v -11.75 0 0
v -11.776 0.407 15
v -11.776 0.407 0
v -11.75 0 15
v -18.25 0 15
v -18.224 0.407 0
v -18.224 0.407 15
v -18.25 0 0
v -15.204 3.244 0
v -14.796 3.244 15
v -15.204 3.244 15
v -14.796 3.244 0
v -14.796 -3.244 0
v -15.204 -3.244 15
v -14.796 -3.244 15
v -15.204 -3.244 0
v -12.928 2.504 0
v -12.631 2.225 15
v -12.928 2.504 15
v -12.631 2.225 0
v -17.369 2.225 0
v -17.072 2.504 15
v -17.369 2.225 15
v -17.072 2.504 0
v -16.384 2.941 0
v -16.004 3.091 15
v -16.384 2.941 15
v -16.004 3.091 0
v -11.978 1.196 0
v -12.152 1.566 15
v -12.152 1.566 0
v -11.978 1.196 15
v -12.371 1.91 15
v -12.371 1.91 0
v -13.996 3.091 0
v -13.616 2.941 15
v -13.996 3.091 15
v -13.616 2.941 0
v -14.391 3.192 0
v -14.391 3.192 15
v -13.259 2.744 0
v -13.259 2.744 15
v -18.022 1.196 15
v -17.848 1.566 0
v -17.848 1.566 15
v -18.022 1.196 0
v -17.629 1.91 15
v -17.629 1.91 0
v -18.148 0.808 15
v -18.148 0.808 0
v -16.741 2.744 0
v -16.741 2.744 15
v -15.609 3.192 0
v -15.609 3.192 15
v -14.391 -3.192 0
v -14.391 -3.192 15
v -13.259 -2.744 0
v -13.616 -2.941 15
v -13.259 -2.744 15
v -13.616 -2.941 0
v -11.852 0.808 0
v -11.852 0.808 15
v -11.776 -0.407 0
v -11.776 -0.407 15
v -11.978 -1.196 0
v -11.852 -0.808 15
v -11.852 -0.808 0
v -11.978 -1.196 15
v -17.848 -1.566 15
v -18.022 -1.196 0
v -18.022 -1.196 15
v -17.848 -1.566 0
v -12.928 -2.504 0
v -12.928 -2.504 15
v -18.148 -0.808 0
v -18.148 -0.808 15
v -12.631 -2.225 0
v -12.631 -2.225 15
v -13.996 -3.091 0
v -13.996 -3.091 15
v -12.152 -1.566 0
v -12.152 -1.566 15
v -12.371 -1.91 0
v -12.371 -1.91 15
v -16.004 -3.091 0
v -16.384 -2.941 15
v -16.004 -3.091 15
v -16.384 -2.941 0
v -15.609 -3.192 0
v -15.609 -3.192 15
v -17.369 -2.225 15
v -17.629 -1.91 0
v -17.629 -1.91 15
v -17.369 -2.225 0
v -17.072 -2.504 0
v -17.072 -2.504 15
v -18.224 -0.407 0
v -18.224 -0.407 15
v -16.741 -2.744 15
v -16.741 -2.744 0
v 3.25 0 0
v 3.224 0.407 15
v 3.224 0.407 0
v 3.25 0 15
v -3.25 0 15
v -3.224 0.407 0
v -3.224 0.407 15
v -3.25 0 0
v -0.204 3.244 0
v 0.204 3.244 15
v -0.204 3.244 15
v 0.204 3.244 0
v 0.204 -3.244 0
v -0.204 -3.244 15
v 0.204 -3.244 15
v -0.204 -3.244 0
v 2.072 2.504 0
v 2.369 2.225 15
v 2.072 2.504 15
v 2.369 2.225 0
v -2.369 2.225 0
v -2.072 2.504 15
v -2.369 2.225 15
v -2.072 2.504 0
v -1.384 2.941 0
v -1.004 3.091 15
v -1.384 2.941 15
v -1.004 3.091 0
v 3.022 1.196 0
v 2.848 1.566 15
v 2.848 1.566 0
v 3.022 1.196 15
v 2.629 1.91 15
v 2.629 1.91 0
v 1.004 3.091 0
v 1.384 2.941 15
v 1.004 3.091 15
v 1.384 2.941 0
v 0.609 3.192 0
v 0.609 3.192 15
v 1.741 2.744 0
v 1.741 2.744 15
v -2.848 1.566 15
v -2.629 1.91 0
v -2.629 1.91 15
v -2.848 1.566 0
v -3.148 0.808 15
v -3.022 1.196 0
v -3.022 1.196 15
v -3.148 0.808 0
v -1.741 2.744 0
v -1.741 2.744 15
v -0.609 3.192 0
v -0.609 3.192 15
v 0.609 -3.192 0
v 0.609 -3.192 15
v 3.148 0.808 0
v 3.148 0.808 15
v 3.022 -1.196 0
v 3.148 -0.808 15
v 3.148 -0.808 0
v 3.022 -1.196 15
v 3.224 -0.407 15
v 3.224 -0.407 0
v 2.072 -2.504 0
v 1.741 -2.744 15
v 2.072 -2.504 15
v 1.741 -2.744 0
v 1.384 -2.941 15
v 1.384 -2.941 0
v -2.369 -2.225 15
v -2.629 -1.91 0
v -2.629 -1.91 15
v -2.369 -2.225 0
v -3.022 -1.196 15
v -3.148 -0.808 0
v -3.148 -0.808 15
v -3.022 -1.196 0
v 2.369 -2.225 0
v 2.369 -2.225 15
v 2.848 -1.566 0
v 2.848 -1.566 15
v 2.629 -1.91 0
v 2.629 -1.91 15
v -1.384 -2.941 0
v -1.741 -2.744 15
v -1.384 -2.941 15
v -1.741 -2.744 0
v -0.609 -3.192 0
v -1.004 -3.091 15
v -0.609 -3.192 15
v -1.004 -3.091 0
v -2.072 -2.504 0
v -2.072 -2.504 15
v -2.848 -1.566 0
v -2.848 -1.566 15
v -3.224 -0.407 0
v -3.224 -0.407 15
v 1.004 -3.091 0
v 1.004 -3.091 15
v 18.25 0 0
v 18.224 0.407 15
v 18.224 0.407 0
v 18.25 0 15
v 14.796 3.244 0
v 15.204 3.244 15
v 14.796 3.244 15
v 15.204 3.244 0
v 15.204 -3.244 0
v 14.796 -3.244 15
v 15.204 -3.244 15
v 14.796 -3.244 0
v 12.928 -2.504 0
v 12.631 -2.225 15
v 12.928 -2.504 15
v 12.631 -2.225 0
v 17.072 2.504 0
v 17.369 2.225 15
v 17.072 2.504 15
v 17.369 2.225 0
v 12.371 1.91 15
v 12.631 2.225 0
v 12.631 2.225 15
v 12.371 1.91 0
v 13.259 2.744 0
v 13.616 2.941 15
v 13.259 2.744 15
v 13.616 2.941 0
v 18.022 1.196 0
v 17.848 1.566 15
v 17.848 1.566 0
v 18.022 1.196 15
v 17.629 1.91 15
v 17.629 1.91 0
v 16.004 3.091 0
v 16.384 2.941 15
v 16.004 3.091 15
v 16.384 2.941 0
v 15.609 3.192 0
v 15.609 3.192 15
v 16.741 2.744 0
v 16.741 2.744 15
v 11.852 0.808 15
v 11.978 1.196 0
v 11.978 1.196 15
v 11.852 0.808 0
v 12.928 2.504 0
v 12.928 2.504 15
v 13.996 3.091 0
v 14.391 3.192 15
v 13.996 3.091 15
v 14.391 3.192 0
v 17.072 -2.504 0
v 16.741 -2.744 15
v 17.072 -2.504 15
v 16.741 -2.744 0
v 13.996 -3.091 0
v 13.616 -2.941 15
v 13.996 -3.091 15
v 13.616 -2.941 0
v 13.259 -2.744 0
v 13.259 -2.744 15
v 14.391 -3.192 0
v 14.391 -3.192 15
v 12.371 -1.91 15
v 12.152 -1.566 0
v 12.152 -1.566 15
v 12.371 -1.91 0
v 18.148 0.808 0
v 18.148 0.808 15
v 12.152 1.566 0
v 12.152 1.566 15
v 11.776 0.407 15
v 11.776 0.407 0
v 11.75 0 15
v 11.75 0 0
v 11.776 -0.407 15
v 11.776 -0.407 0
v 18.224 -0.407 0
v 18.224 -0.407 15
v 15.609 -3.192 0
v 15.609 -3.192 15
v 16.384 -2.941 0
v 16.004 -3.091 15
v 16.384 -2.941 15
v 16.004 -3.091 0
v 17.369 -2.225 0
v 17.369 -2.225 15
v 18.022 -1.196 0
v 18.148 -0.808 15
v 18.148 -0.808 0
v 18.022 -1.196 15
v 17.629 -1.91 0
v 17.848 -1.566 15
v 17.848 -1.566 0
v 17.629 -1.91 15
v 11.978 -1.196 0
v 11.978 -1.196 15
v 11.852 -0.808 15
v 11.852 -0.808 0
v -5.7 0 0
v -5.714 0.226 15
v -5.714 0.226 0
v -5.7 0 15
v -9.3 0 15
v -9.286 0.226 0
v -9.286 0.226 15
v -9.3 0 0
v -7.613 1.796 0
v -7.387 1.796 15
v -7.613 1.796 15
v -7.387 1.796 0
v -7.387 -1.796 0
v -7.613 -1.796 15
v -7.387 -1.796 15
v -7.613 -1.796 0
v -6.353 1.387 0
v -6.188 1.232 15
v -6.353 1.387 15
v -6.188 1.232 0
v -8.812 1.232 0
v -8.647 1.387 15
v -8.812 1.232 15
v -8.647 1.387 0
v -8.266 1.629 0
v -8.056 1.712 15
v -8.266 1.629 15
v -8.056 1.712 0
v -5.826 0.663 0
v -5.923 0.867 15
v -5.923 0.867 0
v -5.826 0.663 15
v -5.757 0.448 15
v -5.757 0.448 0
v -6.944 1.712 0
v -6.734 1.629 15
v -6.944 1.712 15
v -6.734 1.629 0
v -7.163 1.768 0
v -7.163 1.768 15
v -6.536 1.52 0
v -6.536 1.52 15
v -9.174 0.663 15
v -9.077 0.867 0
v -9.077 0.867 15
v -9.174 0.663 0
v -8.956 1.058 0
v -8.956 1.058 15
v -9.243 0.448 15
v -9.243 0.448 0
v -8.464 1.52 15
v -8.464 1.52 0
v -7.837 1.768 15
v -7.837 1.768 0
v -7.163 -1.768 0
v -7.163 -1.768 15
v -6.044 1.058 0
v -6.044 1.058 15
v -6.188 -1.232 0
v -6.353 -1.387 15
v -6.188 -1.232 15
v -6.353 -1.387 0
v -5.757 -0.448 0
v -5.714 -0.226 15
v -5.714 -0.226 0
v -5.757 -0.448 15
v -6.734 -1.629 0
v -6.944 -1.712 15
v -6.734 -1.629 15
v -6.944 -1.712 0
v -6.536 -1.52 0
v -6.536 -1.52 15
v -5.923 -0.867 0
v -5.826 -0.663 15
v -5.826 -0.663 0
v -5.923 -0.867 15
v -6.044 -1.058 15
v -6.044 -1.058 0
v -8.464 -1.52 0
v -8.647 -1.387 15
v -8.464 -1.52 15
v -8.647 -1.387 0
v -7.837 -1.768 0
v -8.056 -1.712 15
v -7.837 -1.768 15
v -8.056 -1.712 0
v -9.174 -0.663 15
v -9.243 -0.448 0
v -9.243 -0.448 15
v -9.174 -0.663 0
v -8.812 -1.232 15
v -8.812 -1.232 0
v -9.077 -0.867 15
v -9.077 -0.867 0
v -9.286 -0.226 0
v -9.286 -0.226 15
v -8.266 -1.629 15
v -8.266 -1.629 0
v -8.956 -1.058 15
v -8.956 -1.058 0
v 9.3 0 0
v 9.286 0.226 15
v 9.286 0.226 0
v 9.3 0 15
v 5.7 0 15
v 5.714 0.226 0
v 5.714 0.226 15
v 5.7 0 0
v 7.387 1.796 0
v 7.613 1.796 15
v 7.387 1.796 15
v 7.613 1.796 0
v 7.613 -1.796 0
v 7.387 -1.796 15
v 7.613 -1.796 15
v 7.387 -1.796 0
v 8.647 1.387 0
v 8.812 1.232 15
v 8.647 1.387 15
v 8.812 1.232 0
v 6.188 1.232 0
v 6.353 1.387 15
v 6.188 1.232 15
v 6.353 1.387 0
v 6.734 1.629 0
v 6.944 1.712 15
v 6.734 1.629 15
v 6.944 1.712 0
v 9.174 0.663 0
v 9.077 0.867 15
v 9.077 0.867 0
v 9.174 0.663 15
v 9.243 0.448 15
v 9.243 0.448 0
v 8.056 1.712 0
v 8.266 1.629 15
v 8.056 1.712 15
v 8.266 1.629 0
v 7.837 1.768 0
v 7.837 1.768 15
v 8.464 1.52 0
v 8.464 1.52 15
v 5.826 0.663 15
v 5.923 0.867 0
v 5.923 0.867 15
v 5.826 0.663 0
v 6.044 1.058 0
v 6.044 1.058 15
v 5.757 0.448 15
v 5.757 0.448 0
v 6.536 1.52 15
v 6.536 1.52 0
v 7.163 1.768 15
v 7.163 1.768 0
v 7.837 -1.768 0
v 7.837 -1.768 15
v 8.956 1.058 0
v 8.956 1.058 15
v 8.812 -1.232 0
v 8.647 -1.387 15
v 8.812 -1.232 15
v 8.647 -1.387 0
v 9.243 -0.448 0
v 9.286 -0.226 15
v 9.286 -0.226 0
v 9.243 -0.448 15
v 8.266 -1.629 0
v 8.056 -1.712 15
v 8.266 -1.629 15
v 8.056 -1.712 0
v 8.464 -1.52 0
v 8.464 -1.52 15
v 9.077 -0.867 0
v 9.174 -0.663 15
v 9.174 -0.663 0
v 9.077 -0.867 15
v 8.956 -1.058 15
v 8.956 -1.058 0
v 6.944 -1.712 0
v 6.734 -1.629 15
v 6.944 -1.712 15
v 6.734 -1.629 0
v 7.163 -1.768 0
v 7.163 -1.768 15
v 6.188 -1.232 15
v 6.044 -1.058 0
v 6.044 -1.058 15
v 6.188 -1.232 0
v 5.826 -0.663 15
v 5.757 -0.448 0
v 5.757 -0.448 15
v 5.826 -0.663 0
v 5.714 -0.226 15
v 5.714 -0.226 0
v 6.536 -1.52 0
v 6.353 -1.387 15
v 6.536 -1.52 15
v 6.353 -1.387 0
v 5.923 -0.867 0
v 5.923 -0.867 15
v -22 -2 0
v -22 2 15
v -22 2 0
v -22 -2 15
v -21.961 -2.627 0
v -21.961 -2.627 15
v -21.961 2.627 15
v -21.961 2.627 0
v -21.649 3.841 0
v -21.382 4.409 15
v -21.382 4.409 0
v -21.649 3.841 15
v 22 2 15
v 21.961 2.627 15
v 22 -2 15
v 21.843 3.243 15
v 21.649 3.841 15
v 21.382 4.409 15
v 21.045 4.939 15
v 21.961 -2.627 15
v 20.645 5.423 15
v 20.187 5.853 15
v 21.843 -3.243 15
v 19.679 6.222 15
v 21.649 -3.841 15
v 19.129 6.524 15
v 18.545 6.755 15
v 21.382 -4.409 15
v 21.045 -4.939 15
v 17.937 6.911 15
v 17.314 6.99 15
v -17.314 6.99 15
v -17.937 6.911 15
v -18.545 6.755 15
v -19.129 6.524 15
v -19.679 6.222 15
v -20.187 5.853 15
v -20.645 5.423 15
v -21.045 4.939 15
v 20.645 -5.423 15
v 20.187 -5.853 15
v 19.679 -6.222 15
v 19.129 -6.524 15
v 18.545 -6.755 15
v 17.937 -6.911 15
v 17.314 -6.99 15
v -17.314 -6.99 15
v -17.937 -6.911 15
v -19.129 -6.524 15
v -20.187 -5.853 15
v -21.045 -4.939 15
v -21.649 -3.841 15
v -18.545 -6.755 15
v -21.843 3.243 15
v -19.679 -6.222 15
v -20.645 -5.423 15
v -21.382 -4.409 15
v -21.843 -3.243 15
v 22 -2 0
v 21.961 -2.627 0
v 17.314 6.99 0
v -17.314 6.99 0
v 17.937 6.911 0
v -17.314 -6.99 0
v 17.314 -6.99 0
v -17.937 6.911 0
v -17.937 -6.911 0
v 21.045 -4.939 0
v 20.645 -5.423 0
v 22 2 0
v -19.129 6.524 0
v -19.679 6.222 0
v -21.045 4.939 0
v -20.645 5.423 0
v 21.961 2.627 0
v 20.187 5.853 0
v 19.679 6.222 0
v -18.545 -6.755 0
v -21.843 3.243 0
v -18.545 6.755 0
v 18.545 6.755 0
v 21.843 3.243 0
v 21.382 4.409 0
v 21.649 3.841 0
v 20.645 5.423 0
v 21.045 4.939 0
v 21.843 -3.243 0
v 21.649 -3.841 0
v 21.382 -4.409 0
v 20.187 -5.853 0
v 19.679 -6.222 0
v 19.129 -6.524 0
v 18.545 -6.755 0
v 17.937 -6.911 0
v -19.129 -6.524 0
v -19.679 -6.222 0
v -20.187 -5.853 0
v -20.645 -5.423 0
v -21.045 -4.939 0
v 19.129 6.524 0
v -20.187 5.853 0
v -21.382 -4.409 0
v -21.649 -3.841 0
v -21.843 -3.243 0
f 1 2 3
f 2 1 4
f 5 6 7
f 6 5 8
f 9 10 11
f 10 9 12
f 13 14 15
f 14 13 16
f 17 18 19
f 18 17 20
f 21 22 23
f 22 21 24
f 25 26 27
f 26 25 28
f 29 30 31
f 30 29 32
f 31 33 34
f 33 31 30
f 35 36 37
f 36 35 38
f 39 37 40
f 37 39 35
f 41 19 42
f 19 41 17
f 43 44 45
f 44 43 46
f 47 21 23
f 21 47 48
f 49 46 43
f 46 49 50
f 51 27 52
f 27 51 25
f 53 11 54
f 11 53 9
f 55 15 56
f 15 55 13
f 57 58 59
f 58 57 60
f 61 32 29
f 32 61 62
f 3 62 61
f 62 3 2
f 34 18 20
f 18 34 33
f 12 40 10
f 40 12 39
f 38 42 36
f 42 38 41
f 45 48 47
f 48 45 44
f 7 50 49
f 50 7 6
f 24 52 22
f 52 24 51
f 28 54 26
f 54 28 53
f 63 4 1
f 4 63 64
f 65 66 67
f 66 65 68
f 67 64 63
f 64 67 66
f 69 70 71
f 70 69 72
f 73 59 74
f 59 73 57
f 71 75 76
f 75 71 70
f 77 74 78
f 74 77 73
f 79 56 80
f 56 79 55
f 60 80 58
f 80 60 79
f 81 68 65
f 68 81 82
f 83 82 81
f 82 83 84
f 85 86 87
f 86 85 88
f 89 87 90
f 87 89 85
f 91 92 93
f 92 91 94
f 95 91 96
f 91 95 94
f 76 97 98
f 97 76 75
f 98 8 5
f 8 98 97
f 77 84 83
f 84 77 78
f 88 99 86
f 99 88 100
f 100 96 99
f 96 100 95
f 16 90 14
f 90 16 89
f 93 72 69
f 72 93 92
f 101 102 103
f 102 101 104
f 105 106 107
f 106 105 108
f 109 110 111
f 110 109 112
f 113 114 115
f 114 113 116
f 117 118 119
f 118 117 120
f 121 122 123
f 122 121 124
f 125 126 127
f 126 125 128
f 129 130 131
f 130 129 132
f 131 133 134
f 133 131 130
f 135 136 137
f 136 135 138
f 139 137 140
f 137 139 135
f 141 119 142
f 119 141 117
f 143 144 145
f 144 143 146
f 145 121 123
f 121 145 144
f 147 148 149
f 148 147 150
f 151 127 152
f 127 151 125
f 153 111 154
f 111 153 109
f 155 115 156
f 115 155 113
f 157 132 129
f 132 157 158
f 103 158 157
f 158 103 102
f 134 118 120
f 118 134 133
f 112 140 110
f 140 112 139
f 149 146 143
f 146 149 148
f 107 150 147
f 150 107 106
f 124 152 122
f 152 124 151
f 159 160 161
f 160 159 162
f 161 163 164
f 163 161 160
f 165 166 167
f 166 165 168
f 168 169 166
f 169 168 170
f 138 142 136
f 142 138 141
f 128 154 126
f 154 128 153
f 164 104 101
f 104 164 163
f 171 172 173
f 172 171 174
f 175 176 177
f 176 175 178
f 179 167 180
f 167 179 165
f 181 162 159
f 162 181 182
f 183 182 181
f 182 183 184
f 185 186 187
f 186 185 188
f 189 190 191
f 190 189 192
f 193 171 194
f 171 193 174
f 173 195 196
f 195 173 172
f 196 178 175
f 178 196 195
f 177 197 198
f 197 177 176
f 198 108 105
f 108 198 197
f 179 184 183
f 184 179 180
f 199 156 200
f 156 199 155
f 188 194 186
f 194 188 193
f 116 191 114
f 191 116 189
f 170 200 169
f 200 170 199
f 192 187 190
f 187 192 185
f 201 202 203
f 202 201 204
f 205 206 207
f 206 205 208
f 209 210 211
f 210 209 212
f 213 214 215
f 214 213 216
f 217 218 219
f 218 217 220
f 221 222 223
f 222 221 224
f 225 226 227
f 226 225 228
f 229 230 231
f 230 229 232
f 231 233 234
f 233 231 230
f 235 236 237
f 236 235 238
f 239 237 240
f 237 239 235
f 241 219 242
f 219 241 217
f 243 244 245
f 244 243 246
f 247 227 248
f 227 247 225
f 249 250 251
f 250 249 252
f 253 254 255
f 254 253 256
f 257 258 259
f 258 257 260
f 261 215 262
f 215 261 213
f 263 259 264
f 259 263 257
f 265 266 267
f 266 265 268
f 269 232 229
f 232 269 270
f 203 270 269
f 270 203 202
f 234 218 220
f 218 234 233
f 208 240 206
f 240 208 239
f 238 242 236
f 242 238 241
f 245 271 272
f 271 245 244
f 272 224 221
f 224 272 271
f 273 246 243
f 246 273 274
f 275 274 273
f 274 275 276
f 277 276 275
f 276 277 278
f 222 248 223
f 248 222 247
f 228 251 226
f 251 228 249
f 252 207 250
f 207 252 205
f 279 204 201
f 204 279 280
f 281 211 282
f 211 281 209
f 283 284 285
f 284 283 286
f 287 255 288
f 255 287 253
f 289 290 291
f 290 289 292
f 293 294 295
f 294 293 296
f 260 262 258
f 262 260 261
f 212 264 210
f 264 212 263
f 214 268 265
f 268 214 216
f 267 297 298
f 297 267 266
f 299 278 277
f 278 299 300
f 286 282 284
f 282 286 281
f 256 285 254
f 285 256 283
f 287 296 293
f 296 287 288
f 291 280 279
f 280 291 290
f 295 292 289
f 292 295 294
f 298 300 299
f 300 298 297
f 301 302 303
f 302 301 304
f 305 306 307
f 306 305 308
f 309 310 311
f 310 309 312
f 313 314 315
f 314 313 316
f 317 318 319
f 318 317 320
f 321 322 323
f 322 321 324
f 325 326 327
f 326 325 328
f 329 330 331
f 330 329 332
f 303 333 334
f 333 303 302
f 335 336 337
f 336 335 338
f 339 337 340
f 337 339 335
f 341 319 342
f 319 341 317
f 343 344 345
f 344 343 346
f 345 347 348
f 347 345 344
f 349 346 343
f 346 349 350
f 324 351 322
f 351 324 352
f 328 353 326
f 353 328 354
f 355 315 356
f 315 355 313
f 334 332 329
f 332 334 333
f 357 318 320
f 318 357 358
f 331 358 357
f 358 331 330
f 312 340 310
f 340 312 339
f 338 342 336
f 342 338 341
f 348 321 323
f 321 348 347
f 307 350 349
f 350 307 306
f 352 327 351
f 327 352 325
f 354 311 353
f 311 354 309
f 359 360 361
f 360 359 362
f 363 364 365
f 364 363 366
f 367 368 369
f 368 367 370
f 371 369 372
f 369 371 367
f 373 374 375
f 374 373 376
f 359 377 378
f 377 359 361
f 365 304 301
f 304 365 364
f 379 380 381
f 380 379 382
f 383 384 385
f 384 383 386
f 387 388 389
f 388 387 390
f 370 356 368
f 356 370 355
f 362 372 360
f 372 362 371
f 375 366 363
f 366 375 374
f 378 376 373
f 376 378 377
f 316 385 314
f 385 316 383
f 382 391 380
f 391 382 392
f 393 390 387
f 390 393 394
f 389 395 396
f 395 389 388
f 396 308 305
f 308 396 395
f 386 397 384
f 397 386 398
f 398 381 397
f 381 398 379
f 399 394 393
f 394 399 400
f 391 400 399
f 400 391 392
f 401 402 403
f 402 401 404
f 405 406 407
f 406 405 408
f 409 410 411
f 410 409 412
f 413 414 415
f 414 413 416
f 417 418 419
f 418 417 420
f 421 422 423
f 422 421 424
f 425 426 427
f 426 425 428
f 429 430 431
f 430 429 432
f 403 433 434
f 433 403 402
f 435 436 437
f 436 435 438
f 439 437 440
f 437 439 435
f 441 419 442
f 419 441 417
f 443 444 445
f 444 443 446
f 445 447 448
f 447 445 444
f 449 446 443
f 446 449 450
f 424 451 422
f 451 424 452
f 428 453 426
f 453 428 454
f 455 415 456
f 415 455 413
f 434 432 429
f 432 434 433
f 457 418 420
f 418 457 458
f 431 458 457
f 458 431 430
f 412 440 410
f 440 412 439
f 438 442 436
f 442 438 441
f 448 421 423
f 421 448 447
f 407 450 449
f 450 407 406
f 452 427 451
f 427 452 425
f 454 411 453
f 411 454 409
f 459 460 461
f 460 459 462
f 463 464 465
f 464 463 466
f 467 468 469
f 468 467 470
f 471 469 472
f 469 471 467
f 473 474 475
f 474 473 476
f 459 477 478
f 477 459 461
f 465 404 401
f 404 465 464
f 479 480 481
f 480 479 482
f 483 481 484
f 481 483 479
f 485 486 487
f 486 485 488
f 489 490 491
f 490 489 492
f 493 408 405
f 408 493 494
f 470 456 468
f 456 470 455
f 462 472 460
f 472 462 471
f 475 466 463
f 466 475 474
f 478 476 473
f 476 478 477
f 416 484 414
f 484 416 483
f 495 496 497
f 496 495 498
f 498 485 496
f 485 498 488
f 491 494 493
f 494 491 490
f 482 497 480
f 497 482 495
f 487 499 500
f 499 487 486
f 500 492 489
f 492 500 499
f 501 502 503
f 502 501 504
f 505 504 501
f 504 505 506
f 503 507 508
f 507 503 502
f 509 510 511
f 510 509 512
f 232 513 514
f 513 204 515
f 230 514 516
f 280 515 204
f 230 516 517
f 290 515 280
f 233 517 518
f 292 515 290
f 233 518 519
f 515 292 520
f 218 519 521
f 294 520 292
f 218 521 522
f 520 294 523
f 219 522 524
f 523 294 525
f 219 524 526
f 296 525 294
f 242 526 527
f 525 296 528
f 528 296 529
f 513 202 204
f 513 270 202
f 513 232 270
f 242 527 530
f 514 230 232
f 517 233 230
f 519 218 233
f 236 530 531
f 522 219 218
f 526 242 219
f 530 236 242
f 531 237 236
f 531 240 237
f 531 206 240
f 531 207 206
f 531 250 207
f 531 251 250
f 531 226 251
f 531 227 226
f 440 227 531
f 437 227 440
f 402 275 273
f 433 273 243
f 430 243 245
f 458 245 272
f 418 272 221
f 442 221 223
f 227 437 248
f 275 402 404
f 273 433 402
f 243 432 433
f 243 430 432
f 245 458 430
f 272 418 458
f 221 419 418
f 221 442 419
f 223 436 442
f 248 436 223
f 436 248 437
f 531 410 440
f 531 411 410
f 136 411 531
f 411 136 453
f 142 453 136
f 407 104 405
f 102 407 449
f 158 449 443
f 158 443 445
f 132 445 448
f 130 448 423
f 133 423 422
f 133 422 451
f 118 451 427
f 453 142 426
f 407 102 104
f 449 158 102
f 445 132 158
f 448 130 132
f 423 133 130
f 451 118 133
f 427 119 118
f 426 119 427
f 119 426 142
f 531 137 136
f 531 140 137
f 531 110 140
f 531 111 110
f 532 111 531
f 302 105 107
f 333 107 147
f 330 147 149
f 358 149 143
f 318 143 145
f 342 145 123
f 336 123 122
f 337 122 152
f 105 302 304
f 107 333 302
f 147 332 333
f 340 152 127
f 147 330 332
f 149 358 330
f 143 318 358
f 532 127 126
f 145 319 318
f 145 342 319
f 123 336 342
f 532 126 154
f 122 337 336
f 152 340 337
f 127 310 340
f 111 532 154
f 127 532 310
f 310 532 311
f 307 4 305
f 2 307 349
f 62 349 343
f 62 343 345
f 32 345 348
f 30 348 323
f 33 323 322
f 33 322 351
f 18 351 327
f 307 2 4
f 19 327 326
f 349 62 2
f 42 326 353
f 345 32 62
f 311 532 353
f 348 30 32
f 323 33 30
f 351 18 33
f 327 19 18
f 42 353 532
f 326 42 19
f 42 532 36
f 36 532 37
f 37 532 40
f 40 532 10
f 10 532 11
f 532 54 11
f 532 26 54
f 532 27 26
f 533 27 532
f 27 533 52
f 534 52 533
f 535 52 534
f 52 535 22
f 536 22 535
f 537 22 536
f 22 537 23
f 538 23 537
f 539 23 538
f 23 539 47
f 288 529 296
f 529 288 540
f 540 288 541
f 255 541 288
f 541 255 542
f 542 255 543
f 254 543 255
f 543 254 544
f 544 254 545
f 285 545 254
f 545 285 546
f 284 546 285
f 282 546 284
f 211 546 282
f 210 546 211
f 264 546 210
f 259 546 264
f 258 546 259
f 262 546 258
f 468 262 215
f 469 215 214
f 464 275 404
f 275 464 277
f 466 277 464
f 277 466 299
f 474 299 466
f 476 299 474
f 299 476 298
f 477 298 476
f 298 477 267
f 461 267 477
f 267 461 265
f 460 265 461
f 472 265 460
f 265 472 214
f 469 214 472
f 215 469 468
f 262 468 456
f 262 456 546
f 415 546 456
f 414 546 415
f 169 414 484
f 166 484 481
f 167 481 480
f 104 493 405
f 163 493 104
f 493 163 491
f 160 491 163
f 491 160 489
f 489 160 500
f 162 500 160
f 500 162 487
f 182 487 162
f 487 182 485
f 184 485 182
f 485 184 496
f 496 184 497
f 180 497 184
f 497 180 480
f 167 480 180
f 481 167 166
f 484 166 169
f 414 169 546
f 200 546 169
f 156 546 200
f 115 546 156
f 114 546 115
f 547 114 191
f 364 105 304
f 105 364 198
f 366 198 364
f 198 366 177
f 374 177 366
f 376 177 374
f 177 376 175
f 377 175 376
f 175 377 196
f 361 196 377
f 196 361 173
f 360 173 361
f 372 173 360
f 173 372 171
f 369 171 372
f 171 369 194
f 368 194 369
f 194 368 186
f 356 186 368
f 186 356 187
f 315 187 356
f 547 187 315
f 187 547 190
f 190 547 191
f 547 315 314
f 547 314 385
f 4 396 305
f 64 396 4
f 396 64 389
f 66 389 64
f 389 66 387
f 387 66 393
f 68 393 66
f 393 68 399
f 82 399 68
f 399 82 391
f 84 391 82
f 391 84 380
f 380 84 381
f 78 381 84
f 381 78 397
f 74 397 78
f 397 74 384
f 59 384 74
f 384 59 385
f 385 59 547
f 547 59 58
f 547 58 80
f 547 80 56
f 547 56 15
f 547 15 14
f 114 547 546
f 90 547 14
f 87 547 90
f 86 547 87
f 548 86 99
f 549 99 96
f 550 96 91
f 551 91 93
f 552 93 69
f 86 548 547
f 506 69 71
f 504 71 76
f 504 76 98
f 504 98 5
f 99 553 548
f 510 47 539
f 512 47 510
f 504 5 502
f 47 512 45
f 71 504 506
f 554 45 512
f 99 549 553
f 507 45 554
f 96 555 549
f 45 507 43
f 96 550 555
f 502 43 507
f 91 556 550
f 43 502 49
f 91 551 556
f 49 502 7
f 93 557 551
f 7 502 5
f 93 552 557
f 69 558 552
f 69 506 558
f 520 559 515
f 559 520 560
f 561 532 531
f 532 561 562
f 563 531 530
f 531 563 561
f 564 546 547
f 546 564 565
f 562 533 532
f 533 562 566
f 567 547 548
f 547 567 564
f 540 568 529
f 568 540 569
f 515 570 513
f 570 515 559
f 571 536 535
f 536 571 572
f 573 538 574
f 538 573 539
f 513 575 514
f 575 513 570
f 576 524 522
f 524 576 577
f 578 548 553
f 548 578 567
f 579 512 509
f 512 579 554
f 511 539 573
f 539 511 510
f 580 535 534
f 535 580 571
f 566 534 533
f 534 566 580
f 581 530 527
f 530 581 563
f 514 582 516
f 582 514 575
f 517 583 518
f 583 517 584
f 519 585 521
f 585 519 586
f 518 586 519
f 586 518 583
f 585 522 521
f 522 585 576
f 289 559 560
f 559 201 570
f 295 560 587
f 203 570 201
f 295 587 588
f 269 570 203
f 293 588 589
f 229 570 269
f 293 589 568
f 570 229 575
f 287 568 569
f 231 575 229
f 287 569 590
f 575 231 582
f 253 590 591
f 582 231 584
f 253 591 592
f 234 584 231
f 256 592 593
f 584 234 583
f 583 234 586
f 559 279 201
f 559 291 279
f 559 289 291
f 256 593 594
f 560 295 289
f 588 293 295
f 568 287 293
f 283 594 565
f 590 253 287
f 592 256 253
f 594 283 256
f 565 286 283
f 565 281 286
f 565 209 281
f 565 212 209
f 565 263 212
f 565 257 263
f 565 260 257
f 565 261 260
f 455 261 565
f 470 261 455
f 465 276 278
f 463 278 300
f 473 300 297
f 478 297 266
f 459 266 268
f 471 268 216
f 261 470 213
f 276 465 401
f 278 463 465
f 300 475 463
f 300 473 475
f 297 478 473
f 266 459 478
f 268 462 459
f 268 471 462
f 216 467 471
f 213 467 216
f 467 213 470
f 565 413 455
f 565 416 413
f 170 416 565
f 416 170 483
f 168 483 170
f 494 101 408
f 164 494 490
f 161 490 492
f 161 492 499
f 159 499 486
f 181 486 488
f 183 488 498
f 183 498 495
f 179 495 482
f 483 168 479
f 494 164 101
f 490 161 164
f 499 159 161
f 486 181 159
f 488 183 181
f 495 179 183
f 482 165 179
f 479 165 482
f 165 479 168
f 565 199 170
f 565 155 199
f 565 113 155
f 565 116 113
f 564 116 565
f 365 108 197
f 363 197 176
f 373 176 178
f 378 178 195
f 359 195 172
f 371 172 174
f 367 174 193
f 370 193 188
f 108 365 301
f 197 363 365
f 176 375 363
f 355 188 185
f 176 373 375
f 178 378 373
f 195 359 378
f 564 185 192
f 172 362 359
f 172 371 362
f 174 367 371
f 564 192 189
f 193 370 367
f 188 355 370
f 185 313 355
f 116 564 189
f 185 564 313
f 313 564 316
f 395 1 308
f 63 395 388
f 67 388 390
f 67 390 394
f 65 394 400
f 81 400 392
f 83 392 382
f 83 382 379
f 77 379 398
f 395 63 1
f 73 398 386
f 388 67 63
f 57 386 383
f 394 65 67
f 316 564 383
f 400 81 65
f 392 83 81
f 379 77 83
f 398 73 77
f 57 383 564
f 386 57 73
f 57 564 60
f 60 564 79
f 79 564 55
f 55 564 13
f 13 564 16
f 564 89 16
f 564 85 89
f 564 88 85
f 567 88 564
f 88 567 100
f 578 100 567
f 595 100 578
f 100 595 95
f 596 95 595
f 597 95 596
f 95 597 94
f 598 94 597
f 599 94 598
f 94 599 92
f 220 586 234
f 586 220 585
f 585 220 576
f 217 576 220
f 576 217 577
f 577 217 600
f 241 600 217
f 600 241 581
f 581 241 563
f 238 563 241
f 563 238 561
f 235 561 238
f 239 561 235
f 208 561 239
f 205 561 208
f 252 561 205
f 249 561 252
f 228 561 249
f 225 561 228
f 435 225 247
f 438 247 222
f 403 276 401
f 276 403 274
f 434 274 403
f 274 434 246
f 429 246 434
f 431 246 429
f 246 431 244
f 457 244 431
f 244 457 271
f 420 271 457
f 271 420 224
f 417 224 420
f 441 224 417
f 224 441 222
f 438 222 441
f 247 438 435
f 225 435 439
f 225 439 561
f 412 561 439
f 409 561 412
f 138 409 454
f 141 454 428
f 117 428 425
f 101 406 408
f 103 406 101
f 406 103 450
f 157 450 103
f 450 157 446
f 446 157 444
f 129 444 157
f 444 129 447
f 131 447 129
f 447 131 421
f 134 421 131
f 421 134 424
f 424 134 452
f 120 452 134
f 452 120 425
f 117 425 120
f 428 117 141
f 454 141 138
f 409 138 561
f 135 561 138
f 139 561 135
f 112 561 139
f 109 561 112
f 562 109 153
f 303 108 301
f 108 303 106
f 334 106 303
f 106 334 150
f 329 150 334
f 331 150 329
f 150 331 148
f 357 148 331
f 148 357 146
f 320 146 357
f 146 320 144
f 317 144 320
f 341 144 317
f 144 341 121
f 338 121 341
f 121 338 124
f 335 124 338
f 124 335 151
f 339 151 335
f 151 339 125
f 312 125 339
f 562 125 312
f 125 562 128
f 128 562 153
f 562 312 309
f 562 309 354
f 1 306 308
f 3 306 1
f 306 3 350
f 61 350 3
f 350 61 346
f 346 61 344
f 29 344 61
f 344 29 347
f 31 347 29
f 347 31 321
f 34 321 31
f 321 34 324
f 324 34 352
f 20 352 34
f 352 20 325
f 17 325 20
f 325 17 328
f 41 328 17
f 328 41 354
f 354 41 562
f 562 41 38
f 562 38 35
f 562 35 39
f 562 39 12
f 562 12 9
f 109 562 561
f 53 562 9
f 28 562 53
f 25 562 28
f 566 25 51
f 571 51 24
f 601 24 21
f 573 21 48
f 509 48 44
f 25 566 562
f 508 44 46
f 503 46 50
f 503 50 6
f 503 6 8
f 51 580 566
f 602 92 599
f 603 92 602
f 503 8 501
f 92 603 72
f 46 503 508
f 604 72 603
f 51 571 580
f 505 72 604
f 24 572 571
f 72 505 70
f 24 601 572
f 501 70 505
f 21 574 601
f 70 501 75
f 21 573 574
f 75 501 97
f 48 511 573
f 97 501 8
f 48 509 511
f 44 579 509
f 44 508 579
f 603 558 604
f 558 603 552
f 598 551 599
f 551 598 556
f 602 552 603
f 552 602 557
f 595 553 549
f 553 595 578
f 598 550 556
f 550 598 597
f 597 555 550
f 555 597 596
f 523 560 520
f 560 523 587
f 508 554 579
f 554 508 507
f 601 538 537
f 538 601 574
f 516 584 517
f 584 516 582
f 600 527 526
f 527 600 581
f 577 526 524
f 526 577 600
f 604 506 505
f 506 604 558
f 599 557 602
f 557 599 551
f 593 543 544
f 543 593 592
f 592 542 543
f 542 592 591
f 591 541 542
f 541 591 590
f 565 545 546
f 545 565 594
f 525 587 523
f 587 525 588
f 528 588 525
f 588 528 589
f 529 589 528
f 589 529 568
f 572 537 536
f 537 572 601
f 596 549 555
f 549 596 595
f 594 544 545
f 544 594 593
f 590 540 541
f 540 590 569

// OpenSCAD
$fn = 50;


difference() {
	union() {
		hull() {
			translate(v = [-17.0000000000, 2.0000000000, 0]) {
				cylinder(h = 15, r = 5);
			}
			translate(v = [17.0000000000, 2.0000000000, 0]) {
				cylinder(h = 15, r = 5);
			}
			translate(v = [-17.0000000000, -2.0000000000, 0]) {
				cylinder(h = 15, r = 5);
			}
			translate(v = [17.0000000000, -2.0000000000, 0]) {
				cylinder(h = 15, r = 5);
			}
		}
	}
	union() {
		translate(v = [-15.0000000000, 0.0000000000, 0]) {
			translate(v = [0, 0, -100]) {
				cylinder(h = 200, r = 3.2500000000);
			}
		}
		translate(v = [0, 0, -100]) {
			cylinder(h = 200, r = 3.2500000000);
		}
		translate(v = [15.0000000000, 0.0000000000, 0]) {
			translate(v = [0, 0, -100]) {
				cylinder(h = 200, r = 3.2500000000);
			}
		}
		translate(v = [-15.0000000000, 0.0000000000, 0]) {
			translate(v = [0, 0, -100]) {
				cylinder(h = 200, r = 1.8000000000);
			}
		}
		translate(v = [-7.5000000000, 0.0000000000, 0]) {
			translate(v = [0, 0, -100]) {
				cylinder(h = 200, r = 1.8000000000);
			}
		}
		translate(v = [0, 0, -100]) {
			cylinder(h = 200, r = 1.8000000000);
		}
		translate(v = [7.5000000000, 0.0000000000, 0]) {
			translate(v = [0, 0, -100]) {
				cylinder(h = 200, r = 1.8000000000);
			}
		}
		translate(v = [15.0000000000, 0.0000000000, 0]) {
			translate(v = [0, 0, -100]) {
				cylinder(h = 200, r = 1.8000000000);
			}
		}
	}
}
